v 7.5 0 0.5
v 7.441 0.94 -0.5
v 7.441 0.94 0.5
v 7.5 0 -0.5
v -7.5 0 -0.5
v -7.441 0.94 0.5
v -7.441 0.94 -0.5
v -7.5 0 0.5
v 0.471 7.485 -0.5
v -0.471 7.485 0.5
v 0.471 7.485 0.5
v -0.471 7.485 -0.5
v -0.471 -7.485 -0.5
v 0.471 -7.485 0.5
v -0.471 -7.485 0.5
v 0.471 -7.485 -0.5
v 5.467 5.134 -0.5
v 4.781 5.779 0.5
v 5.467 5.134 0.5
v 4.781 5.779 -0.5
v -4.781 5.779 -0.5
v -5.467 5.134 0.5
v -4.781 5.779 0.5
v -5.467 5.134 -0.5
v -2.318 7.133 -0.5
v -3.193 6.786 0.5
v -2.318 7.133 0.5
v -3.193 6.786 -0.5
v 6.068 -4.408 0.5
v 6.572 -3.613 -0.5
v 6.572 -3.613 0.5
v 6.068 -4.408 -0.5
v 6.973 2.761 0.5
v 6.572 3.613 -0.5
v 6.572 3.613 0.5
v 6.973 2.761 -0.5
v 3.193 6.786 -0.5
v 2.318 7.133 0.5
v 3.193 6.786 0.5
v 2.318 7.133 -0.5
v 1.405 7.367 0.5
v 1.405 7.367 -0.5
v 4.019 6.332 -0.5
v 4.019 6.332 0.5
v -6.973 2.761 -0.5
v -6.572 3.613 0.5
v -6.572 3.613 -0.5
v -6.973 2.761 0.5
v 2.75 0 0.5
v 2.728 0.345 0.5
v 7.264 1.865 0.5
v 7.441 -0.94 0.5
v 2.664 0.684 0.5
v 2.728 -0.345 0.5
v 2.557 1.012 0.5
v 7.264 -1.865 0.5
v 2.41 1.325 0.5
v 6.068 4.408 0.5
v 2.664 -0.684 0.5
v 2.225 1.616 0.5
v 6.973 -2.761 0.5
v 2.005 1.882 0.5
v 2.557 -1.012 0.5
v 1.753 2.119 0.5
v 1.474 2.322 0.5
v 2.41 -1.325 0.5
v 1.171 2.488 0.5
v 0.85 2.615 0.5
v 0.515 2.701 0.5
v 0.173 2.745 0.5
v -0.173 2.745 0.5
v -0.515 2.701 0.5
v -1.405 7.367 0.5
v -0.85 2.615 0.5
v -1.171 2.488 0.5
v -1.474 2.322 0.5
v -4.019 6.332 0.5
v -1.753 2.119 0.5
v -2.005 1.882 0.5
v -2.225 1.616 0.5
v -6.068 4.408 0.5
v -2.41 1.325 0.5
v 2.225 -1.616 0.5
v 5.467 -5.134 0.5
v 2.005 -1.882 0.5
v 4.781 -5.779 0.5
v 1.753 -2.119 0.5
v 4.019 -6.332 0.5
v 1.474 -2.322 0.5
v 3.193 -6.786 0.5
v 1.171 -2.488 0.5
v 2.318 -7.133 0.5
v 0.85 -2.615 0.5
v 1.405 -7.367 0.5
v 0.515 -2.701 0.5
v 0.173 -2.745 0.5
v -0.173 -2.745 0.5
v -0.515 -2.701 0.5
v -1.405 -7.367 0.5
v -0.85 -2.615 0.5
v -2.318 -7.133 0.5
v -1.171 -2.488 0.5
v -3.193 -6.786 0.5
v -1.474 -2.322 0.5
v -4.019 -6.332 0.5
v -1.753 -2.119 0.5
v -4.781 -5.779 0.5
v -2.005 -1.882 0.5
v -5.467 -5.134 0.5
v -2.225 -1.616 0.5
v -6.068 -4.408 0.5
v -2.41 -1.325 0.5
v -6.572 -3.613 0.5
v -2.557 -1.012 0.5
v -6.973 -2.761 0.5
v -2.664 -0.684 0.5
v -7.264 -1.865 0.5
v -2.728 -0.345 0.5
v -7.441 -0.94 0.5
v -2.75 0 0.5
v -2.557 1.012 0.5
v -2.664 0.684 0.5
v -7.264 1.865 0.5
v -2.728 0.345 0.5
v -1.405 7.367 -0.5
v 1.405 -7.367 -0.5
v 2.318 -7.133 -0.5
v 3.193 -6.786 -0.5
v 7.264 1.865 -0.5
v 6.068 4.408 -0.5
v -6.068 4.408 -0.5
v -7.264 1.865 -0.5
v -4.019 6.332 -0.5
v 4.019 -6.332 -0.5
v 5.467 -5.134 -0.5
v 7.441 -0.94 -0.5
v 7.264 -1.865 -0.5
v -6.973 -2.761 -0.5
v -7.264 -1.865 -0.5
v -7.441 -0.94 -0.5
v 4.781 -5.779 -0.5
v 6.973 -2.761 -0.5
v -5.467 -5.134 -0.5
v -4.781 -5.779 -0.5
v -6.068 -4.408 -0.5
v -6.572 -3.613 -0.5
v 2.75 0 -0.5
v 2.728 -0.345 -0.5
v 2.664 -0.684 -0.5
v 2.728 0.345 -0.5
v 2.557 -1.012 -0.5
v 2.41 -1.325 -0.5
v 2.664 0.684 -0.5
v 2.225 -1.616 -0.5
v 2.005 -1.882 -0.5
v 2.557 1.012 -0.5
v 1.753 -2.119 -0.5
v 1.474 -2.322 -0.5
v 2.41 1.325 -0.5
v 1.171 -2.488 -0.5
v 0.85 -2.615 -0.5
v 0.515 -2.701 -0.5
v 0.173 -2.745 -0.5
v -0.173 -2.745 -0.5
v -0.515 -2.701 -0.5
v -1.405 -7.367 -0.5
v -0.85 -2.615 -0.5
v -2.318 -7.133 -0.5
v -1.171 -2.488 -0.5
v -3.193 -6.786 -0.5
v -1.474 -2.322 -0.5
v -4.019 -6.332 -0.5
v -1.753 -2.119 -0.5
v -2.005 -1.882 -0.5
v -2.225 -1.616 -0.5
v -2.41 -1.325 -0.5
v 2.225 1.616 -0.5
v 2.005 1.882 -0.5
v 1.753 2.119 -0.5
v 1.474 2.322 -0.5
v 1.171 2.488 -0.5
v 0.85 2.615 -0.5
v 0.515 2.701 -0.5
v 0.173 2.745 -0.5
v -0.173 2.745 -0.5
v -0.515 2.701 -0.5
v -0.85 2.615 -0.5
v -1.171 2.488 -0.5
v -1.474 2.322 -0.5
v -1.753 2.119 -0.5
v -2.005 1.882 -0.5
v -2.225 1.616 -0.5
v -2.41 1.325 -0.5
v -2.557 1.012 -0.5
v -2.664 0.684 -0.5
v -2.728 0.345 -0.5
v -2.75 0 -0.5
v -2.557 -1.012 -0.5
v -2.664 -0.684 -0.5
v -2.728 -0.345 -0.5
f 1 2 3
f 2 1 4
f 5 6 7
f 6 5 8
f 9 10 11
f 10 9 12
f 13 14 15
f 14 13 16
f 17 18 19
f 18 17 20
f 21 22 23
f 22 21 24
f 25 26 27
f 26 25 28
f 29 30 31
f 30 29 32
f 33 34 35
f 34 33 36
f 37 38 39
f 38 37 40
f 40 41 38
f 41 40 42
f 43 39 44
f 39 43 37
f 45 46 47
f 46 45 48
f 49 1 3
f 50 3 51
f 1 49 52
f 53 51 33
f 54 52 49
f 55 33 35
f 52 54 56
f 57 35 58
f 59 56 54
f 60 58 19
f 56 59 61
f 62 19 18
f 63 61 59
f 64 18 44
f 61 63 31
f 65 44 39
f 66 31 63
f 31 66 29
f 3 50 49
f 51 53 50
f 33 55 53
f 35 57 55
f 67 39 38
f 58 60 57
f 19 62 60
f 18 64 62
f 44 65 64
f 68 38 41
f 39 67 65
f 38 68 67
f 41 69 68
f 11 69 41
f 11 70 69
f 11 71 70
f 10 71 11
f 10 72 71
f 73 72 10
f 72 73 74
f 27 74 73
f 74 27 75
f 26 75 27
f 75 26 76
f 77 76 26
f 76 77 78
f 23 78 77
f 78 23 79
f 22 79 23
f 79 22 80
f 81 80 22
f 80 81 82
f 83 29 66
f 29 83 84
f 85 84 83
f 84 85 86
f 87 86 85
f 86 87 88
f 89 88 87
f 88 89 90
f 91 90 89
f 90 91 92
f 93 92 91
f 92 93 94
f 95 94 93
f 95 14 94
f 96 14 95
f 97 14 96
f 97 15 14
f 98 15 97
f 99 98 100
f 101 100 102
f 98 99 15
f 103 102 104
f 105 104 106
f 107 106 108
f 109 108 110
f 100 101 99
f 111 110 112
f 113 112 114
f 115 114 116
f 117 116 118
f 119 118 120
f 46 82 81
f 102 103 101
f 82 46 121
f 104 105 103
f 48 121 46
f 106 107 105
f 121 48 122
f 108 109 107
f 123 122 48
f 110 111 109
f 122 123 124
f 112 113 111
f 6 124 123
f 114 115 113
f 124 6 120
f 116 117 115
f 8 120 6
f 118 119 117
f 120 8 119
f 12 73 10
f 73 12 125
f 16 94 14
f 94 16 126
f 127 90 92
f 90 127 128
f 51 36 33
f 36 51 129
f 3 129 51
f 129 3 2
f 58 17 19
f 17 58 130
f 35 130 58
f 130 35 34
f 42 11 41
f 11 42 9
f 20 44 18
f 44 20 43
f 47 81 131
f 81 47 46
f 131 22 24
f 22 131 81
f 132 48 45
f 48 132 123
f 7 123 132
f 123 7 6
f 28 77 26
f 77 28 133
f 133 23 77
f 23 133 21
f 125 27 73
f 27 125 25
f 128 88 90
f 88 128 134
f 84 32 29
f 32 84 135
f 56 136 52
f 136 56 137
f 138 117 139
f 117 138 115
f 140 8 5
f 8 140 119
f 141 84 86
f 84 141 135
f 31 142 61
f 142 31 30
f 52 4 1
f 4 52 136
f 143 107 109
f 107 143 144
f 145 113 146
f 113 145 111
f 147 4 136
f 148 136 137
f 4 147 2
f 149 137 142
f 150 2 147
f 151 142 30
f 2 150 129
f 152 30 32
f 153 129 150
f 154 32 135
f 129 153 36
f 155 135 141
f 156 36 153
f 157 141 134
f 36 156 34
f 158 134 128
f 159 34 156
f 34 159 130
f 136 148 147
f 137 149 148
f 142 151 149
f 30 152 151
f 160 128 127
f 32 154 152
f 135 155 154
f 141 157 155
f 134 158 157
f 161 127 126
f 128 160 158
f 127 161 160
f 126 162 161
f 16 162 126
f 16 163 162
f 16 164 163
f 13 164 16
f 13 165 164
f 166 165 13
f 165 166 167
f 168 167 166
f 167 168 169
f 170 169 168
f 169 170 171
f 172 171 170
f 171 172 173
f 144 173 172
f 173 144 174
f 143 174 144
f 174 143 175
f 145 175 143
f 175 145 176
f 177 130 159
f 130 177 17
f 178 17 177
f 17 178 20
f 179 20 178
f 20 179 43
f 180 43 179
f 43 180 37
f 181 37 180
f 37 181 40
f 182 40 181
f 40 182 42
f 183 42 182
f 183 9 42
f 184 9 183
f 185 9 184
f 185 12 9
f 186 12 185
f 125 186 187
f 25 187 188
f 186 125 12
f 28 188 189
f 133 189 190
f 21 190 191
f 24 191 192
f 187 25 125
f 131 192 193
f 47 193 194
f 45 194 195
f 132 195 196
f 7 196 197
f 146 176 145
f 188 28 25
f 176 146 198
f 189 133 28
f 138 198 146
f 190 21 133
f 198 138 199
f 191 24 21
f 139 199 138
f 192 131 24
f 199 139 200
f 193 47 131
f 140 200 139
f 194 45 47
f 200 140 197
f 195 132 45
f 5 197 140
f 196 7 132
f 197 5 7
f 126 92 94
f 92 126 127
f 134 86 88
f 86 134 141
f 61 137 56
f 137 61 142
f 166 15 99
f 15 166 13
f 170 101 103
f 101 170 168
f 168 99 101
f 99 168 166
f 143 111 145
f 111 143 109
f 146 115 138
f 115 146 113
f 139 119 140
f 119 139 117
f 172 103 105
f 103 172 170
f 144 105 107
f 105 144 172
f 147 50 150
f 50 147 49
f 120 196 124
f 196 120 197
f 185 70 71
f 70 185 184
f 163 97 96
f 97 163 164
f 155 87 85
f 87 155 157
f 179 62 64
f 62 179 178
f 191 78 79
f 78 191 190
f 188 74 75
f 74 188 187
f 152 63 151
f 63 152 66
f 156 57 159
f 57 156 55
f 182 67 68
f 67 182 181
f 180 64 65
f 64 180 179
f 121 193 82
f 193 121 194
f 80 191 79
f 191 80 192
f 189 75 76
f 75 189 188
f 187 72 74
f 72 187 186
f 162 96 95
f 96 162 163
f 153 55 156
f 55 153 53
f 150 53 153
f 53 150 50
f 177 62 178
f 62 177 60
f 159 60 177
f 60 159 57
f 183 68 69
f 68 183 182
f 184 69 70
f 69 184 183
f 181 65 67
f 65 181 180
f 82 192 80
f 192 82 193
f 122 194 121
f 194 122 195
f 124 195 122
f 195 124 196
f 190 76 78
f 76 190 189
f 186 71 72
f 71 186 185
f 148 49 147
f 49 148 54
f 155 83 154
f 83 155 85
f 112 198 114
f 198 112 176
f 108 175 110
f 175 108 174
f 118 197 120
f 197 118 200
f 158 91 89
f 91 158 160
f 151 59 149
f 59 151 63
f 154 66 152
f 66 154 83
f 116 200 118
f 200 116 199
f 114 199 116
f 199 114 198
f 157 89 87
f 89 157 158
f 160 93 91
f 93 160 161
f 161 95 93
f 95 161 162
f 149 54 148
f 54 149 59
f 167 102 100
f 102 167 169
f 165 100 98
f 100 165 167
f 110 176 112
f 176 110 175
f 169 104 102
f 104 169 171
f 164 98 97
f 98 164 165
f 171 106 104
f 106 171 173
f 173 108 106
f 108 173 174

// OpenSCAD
$fn = 50;


difference() {
	union() {
		translate(v = [0, 0, -0.5000000000]) {
			cylinder(h = 1, r = 7.5000000000);
		}
	}
	union() {
		translate(v = [0, 0, -100.0000000000]) {
			cylinder(h = 200, r = 2.7500000000);
		}
	}
}
